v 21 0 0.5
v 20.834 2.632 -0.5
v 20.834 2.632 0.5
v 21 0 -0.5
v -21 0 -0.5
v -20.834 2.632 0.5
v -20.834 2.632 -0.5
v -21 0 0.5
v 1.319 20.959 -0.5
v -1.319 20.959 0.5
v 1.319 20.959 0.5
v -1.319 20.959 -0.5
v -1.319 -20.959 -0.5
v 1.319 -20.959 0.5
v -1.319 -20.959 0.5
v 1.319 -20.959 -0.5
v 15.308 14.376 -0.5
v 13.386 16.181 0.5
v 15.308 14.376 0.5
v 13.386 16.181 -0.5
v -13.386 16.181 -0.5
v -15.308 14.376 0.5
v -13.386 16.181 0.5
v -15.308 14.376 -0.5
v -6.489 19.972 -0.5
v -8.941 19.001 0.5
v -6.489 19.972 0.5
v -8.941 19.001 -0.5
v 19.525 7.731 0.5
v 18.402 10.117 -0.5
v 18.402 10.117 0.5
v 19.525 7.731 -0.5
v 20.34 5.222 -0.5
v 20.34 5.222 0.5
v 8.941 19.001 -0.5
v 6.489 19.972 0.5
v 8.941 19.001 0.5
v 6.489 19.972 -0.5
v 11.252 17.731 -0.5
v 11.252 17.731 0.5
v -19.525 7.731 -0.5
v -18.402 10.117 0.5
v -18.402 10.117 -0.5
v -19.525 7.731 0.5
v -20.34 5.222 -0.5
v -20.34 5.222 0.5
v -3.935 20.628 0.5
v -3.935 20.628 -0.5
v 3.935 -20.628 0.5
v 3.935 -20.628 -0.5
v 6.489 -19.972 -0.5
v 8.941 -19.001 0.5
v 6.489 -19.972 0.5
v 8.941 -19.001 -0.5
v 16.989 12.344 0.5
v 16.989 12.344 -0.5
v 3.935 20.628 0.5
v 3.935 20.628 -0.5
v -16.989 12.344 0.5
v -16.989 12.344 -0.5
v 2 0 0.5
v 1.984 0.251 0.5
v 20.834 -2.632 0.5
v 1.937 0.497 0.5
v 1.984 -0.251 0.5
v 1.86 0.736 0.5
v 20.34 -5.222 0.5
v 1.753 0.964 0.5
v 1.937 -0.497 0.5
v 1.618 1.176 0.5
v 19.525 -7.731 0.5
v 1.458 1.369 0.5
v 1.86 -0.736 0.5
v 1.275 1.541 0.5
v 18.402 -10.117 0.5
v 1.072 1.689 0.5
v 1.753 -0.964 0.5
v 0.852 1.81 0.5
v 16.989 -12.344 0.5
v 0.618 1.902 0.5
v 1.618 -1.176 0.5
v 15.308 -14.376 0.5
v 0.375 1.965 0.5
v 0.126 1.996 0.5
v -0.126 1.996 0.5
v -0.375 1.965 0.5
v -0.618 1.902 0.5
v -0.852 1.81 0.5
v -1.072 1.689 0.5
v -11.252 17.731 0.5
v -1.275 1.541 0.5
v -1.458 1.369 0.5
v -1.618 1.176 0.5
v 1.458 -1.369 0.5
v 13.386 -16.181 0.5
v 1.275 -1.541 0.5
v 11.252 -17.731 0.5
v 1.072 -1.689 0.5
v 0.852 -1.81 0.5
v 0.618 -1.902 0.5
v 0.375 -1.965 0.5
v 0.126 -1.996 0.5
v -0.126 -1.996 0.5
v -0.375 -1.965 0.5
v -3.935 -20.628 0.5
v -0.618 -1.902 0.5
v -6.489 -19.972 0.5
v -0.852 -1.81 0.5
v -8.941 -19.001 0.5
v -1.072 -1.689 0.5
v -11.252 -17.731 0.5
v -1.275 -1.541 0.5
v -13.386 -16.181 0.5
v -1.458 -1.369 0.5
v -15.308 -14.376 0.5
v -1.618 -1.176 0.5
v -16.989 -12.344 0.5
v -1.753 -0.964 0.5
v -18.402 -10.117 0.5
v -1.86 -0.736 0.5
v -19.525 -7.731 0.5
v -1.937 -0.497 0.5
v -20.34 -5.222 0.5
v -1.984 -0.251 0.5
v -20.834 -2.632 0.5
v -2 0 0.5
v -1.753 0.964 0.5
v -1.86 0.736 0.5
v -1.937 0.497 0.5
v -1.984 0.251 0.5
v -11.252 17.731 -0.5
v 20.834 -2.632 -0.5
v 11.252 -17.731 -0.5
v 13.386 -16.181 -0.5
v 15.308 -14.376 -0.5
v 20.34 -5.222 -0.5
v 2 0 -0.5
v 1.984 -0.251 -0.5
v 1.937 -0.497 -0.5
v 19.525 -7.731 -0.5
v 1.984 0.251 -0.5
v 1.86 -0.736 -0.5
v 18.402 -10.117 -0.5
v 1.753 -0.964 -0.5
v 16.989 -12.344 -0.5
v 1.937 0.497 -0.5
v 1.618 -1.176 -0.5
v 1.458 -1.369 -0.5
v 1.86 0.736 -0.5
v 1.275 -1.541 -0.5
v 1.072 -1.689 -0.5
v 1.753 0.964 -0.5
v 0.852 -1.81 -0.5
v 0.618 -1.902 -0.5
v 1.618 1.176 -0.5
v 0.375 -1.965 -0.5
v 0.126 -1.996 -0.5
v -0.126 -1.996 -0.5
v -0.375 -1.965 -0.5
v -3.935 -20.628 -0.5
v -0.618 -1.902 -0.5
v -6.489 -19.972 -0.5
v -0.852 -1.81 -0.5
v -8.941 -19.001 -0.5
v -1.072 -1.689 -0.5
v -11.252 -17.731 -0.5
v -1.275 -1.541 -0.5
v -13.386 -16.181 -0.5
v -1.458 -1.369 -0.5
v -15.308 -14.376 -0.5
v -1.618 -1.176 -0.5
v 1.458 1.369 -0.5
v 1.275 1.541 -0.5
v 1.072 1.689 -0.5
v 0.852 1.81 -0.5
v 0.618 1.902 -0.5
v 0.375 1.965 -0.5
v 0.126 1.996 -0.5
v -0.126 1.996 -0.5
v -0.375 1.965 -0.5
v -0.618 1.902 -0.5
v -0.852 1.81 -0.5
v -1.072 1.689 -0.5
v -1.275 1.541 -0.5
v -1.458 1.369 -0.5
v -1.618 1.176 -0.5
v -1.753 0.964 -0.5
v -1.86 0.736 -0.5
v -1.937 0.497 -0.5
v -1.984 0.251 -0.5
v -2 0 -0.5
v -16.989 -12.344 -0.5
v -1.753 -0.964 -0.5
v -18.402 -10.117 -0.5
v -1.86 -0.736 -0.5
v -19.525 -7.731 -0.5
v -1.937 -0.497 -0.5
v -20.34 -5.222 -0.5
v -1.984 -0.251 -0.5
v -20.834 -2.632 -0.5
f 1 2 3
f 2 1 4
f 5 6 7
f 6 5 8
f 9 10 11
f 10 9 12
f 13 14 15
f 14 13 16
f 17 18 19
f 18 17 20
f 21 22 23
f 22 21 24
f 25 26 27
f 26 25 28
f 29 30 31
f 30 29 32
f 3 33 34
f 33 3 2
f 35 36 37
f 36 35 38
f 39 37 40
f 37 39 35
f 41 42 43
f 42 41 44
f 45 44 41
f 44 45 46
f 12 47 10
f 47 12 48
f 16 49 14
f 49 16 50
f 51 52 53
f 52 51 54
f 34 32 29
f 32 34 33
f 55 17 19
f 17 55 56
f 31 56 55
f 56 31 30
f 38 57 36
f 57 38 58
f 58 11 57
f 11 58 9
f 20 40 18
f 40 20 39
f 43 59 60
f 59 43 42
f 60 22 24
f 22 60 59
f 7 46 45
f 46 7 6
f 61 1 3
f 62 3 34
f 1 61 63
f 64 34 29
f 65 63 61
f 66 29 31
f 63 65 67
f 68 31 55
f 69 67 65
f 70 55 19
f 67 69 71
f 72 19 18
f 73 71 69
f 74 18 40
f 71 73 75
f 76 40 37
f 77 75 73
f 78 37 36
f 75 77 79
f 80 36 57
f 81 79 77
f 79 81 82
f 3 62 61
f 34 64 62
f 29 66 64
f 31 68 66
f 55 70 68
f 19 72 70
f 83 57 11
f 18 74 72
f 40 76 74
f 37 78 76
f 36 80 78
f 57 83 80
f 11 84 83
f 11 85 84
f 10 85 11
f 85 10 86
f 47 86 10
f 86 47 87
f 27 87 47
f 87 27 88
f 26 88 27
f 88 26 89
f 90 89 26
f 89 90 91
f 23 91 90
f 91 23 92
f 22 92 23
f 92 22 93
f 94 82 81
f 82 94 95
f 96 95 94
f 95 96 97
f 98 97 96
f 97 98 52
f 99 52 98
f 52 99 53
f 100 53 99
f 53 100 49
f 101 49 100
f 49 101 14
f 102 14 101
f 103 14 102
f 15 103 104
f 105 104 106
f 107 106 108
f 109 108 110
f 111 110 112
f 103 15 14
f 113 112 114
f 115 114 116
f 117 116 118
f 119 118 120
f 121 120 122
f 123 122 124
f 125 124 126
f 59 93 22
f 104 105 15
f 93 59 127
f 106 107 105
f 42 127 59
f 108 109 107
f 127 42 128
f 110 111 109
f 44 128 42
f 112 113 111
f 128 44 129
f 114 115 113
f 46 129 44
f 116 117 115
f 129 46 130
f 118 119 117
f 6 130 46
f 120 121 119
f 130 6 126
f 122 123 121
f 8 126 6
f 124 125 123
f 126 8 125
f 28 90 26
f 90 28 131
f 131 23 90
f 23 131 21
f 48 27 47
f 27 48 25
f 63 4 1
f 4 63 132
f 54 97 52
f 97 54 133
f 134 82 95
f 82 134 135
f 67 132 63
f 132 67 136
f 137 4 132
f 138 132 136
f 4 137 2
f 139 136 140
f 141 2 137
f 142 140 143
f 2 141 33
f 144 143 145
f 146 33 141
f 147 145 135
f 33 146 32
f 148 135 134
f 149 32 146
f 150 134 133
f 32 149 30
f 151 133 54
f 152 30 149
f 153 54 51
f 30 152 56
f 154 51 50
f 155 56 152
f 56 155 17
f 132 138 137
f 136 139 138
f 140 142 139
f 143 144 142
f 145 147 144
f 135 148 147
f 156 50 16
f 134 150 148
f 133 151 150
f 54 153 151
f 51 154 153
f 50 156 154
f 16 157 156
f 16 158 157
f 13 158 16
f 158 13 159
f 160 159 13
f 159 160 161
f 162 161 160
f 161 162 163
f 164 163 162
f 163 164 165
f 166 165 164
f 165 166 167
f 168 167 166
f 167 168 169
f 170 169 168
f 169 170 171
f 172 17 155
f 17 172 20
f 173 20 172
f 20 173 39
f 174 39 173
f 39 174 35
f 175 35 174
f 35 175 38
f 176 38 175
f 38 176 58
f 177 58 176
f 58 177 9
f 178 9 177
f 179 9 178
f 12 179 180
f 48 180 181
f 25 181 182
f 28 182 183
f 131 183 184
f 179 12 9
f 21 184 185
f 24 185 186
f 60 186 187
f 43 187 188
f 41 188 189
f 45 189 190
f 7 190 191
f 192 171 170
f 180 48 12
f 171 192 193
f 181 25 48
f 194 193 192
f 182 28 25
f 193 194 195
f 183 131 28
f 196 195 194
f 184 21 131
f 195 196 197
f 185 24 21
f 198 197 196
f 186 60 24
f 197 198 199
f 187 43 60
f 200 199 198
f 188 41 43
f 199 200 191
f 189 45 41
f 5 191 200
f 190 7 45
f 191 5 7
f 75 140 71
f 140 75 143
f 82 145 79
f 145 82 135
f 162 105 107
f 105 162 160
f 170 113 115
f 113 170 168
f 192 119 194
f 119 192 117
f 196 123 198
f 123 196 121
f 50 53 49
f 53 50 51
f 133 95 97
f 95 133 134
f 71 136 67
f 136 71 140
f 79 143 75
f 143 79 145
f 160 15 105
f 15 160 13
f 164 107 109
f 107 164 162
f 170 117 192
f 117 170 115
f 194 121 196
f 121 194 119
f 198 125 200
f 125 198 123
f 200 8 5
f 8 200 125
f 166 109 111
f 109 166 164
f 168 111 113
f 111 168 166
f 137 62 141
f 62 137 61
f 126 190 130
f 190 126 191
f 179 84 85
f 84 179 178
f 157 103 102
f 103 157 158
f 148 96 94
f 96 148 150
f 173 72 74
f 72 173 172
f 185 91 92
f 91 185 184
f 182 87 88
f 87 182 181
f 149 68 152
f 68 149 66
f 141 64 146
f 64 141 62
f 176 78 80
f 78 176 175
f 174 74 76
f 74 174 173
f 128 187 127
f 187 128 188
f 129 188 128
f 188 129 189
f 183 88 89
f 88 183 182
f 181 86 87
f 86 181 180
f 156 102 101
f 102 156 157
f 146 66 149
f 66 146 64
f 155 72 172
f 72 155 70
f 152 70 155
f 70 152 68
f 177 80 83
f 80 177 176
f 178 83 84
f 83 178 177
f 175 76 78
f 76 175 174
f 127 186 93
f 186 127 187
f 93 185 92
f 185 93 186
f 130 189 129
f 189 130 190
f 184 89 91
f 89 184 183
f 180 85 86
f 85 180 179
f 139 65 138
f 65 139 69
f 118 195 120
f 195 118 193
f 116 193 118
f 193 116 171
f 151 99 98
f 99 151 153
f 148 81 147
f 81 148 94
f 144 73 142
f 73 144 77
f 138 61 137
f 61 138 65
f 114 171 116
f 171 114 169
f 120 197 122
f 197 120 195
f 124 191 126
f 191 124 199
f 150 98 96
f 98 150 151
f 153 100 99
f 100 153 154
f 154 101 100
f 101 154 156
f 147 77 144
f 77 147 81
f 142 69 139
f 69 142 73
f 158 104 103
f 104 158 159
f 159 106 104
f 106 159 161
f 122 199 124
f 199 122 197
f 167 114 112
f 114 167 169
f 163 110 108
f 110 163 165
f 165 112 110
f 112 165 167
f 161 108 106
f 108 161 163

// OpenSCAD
$fn = 50;


difference() {
	union() {
		translate(v = [0, 0, -0.5000000000]) {
			cylinder(h = 1, r = 21.0000000000);
		}
	}
	union() {
		translate(v = [0, 0, -100.0000000000]) {
			cylinder(h = 200, r = 2);
		}
	}
}
